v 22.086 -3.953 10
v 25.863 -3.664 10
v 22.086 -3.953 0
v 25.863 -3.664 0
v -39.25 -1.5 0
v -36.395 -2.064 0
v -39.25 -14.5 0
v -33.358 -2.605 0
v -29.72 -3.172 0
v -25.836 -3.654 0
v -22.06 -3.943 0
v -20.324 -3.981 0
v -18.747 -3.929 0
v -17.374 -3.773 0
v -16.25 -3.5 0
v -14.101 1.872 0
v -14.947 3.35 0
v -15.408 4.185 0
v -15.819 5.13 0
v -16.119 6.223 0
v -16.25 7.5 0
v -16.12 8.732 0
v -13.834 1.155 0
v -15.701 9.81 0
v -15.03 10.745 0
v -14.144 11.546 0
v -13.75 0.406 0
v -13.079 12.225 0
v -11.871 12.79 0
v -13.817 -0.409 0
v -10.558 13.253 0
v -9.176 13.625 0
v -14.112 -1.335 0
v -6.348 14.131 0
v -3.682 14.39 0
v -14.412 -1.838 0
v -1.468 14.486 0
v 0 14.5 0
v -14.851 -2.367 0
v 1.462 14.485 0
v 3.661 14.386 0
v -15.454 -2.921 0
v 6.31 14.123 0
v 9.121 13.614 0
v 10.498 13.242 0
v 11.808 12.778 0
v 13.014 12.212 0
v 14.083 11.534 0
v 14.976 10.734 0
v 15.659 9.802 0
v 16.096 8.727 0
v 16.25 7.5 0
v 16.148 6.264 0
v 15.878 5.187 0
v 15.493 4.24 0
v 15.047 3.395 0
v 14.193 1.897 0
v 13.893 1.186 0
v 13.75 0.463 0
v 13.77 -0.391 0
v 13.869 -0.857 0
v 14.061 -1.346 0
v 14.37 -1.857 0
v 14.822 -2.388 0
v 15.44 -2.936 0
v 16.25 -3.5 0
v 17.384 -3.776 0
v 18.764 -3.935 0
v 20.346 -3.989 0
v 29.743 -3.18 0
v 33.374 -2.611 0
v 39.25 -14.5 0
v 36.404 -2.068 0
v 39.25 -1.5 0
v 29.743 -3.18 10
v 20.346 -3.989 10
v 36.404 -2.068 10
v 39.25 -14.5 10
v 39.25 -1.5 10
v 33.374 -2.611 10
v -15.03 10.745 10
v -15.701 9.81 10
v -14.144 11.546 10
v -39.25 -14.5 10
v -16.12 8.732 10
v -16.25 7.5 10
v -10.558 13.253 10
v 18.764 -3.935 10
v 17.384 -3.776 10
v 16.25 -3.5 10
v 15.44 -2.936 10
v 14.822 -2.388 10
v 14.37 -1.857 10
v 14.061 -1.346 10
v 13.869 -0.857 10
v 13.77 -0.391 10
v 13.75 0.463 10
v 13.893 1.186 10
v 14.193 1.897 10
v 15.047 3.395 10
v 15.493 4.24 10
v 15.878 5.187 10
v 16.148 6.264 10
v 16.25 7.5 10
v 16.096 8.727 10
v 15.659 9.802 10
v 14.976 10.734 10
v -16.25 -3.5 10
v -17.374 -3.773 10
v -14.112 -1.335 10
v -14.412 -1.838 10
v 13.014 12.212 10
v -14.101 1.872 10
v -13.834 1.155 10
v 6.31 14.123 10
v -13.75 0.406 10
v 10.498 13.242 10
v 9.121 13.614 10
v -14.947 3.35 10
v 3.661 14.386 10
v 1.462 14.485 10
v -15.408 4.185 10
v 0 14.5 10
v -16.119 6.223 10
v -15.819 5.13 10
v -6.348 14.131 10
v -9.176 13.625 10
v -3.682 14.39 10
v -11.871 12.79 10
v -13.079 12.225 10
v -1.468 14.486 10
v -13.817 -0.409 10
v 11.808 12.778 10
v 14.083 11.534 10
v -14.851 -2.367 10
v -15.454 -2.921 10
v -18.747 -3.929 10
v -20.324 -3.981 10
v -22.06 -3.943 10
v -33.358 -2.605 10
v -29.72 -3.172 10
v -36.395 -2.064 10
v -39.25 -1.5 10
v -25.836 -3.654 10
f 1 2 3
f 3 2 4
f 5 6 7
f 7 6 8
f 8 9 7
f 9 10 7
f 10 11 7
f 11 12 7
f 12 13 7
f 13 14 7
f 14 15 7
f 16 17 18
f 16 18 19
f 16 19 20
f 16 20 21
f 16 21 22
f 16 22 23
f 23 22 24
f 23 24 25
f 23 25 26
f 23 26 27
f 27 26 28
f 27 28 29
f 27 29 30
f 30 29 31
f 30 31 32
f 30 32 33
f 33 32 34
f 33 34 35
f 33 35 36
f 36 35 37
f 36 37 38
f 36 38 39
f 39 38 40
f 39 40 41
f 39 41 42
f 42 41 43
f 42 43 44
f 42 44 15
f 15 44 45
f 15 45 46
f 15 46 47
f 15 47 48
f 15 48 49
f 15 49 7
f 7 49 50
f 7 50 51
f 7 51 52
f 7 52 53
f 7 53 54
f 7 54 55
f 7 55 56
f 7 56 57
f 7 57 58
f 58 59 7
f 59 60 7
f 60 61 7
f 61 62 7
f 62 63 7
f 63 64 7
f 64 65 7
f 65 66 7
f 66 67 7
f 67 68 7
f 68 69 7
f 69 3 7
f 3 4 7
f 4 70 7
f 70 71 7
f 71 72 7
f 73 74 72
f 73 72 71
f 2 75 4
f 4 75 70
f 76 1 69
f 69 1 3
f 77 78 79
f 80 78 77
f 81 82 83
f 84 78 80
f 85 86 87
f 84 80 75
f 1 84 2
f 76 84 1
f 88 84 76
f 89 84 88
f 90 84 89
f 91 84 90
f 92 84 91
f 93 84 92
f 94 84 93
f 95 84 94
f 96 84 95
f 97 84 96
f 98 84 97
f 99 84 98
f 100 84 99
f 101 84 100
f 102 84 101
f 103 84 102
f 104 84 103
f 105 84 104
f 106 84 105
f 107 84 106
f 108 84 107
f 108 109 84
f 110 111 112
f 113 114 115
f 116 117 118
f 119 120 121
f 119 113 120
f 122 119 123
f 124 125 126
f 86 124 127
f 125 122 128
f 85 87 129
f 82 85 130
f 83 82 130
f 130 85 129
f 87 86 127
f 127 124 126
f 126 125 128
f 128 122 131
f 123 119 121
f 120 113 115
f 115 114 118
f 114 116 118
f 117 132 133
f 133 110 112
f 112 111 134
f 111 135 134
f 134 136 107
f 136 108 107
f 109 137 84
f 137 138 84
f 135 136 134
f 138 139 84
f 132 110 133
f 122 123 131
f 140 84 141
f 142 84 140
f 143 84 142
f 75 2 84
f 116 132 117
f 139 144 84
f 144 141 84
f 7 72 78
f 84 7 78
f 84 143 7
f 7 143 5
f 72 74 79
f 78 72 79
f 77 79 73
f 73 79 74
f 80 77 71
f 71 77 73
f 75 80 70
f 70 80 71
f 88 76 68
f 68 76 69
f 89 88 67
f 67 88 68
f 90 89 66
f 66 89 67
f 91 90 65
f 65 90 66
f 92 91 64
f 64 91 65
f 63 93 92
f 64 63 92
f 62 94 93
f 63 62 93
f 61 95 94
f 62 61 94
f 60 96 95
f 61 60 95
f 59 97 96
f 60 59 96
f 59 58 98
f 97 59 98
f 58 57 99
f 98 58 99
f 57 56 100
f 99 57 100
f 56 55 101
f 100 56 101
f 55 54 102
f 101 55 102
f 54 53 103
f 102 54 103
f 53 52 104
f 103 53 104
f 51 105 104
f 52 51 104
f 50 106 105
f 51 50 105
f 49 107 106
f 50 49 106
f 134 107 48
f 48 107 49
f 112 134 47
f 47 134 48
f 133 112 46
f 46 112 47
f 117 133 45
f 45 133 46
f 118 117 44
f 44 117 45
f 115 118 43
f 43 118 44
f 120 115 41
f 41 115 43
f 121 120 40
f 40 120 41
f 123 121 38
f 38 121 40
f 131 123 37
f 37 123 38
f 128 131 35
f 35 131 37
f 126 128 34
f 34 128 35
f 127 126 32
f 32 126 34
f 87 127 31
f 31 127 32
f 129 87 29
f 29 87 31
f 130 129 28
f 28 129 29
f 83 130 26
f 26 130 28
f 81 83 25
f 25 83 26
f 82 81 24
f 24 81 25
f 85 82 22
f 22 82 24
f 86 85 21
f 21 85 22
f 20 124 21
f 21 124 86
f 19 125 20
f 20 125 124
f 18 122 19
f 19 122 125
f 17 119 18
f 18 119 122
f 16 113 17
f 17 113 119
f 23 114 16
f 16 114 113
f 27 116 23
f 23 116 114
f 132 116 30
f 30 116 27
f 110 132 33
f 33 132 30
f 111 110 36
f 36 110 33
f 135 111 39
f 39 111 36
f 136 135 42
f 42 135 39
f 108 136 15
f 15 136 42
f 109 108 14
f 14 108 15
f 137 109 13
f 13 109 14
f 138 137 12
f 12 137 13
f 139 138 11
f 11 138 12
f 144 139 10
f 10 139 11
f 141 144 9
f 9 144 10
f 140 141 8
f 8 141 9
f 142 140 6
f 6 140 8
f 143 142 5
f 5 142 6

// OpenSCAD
// Module names are of the form poly_<inkscape-path-id>().  As a result,
// you can associate a polygon in this OpenSCAD program with the corresponding
// SVG element in the Inkscape document by looking for the XML element with
// the attribute id="inkscape-path-id".

// fudge value is used to ensure that subtracted solids are a tad taller
// in the z dimension than the polygon being subtracted from.  This helps
// keep the resulting .stl file manifold.
fudge = 0.1;

module poly_path2995(h)
{
  scale([25.4/90, -25.4/90, 1]) union()
  {
    linear_extrude(height=h)
      polygon([[-139.074800,5.314975],[-139.074800,51.377975],[139.074800,51.377975],[139.074800,5.314975],[128.989219,7.325870],[118.254271,9.251496],[105.388578,11.267912],[91.640159,12.983124],[78.257034,14.005136],[72.092462,14.133693],[66.487221,13.941951],[61.597313,13.380912],[57.578740,12.401575],[54.708960,10.403186],[52.518293,8.460942],[50.918967,6.581481],[49.823212,4.771438],[49.143256,3.037449],[48.791329,1.386152],[48.720472,-1.641825],[49.225789,-4.203090],[50.288691,-6.721078],[53.316060,-12.031125],[54.894932,-15.025136],[56.260201,-18.379772],[57.219070,-22.196010],[57.578740,-26.574825],[57.032091,-30.922990],[55.485181,-34.730757],[53.065150,-38.033984],[49.899141,-40.868529],[46.114293,-43.270248],[41.837748,-45.275000],[37.196647,-46.918643],[32.318131,-48.237032],[22.357420,-50.041486],[12.972741,-50.975220],[5.181225,-51.325096],[0.000000,-51.377975],[-5.202375,-51.329326],[-13.045256,-50.989723],[-22.493385,-50.068678],[-32.511504,-48.275706],[-37.410792,-46.961471],[-42.064357,-45.320321],[-46.342790,-43.315947],[-50.116685,-40.912037],[-53.256635,-38.072280],[-55.633232,-34.760367],[-57.117070,-30.939985],[-57.578740,-26.574825],[-57.113552,-22.051074],[-56.050761,-18.177697],[-54.597442,-14.826896],[-52.960667,-11.870875],[-49.965042,-6.631978],[-49.020339,-4.093507],[-48.720472,-1.438625],[-48.958137,1.448814],[-50.003224,4.730013],[-51.067853,6.512638],[-52.621501,8.386942],[-54.759890,10.350672],[-57.578740,12.401575],[-61.562020,13.368173],[-66.425733,13.919758],[-72.012936,14.104988],[-78.166684,13.972525],[-91.546045,12.949155],[-105.308268,11.238925],[-118.197803,9.231114],[-128.959102,7.315000],[-139.074800,5.314975]]);
  }
}

poly_path2995(10);
